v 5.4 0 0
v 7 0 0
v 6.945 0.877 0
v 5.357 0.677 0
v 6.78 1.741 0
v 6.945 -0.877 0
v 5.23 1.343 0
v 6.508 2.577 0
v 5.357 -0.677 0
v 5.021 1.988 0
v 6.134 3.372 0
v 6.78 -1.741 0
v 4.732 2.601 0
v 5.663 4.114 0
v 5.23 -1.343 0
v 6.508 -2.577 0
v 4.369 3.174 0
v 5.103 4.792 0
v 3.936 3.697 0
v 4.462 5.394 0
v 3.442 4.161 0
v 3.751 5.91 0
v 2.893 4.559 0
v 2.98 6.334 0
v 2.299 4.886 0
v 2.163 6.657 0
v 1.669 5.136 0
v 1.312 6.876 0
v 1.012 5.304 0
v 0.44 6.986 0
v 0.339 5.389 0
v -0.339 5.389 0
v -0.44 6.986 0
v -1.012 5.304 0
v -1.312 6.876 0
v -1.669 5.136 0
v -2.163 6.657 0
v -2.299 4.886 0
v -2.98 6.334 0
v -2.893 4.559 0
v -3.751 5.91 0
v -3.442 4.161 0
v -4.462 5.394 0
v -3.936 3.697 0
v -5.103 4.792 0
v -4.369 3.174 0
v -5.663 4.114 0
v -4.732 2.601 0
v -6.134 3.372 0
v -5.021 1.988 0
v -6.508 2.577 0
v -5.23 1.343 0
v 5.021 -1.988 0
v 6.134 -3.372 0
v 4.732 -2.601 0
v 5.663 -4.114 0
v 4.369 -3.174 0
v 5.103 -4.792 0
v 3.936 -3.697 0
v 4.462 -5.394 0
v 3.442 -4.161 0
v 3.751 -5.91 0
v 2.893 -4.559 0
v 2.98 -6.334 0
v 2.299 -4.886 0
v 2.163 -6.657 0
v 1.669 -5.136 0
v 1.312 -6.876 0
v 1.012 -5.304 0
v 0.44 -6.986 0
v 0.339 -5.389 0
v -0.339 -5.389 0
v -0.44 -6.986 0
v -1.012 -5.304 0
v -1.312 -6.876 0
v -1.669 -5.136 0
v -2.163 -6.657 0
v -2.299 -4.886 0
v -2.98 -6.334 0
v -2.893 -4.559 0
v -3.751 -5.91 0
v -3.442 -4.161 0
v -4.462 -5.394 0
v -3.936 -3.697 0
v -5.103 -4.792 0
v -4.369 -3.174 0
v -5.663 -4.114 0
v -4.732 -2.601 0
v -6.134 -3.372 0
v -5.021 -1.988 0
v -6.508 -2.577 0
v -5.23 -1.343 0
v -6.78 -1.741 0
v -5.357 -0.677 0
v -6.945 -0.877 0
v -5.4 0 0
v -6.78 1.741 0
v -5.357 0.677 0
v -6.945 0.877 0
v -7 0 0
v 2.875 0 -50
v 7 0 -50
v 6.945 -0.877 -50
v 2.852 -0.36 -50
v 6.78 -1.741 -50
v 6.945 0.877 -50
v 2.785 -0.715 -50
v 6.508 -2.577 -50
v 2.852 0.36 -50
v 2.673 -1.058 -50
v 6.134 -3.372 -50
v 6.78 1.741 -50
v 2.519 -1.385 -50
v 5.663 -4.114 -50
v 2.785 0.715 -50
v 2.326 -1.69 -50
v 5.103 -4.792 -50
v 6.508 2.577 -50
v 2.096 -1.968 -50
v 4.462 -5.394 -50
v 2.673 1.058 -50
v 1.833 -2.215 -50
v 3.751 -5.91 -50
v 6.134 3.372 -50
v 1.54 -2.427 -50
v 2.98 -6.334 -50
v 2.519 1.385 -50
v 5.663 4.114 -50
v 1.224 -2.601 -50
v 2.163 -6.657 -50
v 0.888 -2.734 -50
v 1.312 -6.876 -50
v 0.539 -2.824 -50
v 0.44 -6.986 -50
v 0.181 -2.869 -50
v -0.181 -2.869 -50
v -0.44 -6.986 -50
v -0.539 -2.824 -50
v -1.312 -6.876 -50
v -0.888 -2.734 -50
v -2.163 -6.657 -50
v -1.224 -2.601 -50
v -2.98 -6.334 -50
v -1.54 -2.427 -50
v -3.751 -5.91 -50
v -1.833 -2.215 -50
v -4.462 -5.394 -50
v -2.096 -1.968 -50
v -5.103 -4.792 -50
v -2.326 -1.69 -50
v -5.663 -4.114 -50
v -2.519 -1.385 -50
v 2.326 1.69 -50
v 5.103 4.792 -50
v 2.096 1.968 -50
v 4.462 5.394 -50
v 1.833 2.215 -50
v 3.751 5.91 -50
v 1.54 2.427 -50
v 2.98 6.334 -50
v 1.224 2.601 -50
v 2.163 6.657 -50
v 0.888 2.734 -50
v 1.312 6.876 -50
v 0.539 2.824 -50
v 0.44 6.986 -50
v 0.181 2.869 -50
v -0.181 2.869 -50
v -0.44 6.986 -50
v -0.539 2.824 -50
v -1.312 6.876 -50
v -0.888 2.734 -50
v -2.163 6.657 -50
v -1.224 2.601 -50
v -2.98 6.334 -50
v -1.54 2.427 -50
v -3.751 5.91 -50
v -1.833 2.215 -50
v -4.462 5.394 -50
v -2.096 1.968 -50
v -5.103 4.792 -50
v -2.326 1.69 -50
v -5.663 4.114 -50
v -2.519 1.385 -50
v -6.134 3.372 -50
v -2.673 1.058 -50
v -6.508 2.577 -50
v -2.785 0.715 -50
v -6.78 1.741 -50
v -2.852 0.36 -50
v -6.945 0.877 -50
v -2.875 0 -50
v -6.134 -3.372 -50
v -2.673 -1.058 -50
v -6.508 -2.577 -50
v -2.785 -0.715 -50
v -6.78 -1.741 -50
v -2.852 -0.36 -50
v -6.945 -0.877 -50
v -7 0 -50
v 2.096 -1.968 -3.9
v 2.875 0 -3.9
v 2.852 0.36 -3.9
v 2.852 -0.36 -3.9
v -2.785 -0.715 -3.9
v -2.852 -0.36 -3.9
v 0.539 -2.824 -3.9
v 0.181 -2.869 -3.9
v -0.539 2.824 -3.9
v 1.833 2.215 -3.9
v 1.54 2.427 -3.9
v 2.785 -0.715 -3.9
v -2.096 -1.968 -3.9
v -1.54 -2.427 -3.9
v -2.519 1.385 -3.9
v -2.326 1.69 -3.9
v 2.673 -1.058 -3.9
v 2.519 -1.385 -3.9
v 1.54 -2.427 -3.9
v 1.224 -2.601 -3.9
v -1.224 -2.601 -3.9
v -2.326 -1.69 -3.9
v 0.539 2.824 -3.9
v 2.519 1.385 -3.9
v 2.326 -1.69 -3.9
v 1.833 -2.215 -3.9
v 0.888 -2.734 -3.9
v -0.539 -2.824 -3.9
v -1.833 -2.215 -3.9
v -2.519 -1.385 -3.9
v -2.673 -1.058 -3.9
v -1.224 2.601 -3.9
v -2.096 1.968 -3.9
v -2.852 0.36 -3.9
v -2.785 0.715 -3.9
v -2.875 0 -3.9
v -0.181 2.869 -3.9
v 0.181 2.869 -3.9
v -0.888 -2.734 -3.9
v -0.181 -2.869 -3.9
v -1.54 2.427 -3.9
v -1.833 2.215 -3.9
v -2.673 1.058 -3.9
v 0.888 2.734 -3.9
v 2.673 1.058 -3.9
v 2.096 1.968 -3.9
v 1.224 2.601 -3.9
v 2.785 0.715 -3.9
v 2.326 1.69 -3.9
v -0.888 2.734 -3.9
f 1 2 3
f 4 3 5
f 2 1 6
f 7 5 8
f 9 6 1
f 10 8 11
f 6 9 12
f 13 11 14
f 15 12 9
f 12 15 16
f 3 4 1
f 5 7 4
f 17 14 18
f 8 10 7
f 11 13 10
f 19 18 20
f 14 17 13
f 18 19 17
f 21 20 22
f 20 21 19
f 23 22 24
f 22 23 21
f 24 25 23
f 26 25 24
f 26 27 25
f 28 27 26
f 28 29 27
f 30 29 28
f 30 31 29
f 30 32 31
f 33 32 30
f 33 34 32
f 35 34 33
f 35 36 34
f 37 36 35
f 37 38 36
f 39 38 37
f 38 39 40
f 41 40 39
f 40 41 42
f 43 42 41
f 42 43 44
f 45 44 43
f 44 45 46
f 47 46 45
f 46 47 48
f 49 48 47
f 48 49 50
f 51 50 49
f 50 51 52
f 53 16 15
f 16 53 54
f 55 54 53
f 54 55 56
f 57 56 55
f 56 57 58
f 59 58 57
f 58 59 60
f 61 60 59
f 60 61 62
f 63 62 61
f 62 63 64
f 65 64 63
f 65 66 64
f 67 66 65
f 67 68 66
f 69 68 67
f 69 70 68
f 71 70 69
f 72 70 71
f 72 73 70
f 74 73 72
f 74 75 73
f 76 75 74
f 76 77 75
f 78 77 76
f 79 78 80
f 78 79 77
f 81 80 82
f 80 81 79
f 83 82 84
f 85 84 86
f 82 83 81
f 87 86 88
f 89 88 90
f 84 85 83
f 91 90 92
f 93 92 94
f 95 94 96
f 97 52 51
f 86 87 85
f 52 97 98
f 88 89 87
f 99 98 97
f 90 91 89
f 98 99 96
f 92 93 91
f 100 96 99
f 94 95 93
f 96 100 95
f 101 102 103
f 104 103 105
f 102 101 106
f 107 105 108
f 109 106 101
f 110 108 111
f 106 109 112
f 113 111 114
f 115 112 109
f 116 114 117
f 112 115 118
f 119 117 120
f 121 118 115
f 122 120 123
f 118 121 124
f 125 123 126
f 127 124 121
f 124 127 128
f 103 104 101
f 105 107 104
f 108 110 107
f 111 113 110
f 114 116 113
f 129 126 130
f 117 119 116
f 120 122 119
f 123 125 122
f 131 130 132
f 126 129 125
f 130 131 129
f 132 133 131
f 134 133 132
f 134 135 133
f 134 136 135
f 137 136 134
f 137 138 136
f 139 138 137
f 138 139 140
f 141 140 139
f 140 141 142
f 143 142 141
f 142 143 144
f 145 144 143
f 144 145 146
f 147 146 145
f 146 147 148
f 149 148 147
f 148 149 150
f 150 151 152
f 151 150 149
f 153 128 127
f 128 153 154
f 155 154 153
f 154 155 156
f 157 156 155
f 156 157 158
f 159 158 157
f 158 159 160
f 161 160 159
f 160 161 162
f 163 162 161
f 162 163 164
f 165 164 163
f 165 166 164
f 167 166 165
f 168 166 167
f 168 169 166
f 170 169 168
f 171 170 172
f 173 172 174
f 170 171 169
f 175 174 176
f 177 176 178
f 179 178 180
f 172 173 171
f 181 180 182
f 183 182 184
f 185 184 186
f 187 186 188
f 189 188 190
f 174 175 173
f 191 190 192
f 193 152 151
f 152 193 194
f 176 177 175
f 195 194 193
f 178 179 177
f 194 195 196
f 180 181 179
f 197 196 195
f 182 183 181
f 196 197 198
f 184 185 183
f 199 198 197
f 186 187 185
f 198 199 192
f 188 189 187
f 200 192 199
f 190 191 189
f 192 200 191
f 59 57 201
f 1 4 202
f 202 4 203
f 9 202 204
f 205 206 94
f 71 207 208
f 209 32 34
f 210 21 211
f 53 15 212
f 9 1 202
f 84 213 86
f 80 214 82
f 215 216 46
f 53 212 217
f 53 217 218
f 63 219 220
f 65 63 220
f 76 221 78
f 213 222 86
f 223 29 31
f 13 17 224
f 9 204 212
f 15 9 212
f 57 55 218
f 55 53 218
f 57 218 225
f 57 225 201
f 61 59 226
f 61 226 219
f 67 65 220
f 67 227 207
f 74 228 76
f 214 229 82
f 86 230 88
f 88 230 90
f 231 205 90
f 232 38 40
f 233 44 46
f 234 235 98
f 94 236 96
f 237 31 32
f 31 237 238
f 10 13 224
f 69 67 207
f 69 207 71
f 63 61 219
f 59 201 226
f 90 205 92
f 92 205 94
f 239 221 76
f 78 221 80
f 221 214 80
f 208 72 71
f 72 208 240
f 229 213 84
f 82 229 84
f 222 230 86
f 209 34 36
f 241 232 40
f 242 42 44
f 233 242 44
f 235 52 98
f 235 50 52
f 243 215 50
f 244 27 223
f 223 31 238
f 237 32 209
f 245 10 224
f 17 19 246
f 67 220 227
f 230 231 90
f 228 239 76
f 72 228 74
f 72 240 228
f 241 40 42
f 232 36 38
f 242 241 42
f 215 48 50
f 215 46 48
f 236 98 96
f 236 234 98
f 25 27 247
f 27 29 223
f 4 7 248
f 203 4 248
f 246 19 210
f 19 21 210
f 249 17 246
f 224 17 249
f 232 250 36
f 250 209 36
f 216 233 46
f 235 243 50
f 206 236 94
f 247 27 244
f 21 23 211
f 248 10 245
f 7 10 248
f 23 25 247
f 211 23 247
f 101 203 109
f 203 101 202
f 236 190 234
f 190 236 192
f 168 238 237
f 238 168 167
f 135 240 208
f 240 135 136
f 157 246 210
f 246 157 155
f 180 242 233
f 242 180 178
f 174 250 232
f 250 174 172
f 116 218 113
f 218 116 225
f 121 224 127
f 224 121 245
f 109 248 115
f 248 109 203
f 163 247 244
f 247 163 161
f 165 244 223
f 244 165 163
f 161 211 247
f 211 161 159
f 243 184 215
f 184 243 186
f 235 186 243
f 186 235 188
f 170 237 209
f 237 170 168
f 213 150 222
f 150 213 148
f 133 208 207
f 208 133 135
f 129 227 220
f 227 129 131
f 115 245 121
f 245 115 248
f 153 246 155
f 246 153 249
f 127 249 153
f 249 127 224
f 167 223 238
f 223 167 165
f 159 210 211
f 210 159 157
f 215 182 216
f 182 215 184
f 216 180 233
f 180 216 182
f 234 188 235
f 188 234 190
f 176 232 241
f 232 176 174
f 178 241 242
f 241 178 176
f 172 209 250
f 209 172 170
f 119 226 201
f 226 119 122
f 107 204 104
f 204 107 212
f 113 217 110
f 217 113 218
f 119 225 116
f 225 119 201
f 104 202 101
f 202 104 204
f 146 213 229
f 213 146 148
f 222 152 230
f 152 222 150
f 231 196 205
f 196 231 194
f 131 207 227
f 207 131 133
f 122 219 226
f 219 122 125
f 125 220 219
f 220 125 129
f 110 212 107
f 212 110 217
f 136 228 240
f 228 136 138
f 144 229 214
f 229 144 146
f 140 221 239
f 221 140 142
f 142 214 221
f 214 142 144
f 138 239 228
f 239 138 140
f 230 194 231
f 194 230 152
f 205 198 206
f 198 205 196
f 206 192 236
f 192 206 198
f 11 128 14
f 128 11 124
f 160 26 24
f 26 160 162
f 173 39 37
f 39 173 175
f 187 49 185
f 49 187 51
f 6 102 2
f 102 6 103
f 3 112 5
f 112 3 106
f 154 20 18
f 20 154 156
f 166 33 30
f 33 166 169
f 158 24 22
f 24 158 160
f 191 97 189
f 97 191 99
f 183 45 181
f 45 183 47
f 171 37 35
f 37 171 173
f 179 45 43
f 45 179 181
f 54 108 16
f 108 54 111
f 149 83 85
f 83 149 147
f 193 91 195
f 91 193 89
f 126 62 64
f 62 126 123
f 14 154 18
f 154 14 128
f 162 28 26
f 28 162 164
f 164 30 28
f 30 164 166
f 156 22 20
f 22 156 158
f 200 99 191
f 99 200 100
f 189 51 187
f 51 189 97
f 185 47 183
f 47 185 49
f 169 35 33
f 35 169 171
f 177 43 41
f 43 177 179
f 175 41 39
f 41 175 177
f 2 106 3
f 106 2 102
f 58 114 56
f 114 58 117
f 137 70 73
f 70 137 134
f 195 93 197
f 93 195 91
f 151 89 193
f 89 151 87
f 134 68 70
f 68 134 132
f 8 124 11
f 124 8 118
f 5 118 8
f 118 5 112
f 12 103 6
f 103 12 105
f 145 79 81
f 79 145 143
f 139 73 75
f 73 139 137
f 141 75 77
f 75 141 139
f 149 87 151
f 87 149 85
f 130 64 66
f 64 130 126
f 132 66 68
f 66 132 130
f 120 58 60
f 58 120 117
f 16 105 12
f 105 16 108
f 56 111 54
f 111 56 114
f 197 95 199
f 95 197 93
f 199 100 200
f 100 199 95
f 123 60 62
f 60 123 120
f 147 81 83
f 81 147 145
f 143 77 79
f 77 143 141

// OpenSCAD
$fn = 50;


difference() {
	union() {
		translate(v = [0, 0, -50.0000000000]) {
			cylinder(h = 50, r = 7.0000000000);
		}
		cylinder(h = 0, r = 10.0000000000);
	}
	union() {
		translate(v = [0, 0, 0]) {
			rotate(a = [0, 0, 0]) {
				difference() {
					union() {
						#translate(v = [0, 0, -50.0000000000]) {
							cylinder(h = 50, r = 2.6000000000);
						}
						#translate(v = [0, 0, -3.9000000000]) {
							cylinder(h = 3.9000000000, r = 7.0000000000, r1 = 2.8750000000, r2 = 5.4000000000);
						}
						#translate(v = [0, 0, -50.0000000000]) {
							cylinder(h = 50, r = 2.8750000000);
						}
						#translate(v = [0, 0, -50.0000000000]) {
							cylinder(h = 50, r = 2.6000000000);
						}
					}
					union();
				}
			}
		}
	}
}
